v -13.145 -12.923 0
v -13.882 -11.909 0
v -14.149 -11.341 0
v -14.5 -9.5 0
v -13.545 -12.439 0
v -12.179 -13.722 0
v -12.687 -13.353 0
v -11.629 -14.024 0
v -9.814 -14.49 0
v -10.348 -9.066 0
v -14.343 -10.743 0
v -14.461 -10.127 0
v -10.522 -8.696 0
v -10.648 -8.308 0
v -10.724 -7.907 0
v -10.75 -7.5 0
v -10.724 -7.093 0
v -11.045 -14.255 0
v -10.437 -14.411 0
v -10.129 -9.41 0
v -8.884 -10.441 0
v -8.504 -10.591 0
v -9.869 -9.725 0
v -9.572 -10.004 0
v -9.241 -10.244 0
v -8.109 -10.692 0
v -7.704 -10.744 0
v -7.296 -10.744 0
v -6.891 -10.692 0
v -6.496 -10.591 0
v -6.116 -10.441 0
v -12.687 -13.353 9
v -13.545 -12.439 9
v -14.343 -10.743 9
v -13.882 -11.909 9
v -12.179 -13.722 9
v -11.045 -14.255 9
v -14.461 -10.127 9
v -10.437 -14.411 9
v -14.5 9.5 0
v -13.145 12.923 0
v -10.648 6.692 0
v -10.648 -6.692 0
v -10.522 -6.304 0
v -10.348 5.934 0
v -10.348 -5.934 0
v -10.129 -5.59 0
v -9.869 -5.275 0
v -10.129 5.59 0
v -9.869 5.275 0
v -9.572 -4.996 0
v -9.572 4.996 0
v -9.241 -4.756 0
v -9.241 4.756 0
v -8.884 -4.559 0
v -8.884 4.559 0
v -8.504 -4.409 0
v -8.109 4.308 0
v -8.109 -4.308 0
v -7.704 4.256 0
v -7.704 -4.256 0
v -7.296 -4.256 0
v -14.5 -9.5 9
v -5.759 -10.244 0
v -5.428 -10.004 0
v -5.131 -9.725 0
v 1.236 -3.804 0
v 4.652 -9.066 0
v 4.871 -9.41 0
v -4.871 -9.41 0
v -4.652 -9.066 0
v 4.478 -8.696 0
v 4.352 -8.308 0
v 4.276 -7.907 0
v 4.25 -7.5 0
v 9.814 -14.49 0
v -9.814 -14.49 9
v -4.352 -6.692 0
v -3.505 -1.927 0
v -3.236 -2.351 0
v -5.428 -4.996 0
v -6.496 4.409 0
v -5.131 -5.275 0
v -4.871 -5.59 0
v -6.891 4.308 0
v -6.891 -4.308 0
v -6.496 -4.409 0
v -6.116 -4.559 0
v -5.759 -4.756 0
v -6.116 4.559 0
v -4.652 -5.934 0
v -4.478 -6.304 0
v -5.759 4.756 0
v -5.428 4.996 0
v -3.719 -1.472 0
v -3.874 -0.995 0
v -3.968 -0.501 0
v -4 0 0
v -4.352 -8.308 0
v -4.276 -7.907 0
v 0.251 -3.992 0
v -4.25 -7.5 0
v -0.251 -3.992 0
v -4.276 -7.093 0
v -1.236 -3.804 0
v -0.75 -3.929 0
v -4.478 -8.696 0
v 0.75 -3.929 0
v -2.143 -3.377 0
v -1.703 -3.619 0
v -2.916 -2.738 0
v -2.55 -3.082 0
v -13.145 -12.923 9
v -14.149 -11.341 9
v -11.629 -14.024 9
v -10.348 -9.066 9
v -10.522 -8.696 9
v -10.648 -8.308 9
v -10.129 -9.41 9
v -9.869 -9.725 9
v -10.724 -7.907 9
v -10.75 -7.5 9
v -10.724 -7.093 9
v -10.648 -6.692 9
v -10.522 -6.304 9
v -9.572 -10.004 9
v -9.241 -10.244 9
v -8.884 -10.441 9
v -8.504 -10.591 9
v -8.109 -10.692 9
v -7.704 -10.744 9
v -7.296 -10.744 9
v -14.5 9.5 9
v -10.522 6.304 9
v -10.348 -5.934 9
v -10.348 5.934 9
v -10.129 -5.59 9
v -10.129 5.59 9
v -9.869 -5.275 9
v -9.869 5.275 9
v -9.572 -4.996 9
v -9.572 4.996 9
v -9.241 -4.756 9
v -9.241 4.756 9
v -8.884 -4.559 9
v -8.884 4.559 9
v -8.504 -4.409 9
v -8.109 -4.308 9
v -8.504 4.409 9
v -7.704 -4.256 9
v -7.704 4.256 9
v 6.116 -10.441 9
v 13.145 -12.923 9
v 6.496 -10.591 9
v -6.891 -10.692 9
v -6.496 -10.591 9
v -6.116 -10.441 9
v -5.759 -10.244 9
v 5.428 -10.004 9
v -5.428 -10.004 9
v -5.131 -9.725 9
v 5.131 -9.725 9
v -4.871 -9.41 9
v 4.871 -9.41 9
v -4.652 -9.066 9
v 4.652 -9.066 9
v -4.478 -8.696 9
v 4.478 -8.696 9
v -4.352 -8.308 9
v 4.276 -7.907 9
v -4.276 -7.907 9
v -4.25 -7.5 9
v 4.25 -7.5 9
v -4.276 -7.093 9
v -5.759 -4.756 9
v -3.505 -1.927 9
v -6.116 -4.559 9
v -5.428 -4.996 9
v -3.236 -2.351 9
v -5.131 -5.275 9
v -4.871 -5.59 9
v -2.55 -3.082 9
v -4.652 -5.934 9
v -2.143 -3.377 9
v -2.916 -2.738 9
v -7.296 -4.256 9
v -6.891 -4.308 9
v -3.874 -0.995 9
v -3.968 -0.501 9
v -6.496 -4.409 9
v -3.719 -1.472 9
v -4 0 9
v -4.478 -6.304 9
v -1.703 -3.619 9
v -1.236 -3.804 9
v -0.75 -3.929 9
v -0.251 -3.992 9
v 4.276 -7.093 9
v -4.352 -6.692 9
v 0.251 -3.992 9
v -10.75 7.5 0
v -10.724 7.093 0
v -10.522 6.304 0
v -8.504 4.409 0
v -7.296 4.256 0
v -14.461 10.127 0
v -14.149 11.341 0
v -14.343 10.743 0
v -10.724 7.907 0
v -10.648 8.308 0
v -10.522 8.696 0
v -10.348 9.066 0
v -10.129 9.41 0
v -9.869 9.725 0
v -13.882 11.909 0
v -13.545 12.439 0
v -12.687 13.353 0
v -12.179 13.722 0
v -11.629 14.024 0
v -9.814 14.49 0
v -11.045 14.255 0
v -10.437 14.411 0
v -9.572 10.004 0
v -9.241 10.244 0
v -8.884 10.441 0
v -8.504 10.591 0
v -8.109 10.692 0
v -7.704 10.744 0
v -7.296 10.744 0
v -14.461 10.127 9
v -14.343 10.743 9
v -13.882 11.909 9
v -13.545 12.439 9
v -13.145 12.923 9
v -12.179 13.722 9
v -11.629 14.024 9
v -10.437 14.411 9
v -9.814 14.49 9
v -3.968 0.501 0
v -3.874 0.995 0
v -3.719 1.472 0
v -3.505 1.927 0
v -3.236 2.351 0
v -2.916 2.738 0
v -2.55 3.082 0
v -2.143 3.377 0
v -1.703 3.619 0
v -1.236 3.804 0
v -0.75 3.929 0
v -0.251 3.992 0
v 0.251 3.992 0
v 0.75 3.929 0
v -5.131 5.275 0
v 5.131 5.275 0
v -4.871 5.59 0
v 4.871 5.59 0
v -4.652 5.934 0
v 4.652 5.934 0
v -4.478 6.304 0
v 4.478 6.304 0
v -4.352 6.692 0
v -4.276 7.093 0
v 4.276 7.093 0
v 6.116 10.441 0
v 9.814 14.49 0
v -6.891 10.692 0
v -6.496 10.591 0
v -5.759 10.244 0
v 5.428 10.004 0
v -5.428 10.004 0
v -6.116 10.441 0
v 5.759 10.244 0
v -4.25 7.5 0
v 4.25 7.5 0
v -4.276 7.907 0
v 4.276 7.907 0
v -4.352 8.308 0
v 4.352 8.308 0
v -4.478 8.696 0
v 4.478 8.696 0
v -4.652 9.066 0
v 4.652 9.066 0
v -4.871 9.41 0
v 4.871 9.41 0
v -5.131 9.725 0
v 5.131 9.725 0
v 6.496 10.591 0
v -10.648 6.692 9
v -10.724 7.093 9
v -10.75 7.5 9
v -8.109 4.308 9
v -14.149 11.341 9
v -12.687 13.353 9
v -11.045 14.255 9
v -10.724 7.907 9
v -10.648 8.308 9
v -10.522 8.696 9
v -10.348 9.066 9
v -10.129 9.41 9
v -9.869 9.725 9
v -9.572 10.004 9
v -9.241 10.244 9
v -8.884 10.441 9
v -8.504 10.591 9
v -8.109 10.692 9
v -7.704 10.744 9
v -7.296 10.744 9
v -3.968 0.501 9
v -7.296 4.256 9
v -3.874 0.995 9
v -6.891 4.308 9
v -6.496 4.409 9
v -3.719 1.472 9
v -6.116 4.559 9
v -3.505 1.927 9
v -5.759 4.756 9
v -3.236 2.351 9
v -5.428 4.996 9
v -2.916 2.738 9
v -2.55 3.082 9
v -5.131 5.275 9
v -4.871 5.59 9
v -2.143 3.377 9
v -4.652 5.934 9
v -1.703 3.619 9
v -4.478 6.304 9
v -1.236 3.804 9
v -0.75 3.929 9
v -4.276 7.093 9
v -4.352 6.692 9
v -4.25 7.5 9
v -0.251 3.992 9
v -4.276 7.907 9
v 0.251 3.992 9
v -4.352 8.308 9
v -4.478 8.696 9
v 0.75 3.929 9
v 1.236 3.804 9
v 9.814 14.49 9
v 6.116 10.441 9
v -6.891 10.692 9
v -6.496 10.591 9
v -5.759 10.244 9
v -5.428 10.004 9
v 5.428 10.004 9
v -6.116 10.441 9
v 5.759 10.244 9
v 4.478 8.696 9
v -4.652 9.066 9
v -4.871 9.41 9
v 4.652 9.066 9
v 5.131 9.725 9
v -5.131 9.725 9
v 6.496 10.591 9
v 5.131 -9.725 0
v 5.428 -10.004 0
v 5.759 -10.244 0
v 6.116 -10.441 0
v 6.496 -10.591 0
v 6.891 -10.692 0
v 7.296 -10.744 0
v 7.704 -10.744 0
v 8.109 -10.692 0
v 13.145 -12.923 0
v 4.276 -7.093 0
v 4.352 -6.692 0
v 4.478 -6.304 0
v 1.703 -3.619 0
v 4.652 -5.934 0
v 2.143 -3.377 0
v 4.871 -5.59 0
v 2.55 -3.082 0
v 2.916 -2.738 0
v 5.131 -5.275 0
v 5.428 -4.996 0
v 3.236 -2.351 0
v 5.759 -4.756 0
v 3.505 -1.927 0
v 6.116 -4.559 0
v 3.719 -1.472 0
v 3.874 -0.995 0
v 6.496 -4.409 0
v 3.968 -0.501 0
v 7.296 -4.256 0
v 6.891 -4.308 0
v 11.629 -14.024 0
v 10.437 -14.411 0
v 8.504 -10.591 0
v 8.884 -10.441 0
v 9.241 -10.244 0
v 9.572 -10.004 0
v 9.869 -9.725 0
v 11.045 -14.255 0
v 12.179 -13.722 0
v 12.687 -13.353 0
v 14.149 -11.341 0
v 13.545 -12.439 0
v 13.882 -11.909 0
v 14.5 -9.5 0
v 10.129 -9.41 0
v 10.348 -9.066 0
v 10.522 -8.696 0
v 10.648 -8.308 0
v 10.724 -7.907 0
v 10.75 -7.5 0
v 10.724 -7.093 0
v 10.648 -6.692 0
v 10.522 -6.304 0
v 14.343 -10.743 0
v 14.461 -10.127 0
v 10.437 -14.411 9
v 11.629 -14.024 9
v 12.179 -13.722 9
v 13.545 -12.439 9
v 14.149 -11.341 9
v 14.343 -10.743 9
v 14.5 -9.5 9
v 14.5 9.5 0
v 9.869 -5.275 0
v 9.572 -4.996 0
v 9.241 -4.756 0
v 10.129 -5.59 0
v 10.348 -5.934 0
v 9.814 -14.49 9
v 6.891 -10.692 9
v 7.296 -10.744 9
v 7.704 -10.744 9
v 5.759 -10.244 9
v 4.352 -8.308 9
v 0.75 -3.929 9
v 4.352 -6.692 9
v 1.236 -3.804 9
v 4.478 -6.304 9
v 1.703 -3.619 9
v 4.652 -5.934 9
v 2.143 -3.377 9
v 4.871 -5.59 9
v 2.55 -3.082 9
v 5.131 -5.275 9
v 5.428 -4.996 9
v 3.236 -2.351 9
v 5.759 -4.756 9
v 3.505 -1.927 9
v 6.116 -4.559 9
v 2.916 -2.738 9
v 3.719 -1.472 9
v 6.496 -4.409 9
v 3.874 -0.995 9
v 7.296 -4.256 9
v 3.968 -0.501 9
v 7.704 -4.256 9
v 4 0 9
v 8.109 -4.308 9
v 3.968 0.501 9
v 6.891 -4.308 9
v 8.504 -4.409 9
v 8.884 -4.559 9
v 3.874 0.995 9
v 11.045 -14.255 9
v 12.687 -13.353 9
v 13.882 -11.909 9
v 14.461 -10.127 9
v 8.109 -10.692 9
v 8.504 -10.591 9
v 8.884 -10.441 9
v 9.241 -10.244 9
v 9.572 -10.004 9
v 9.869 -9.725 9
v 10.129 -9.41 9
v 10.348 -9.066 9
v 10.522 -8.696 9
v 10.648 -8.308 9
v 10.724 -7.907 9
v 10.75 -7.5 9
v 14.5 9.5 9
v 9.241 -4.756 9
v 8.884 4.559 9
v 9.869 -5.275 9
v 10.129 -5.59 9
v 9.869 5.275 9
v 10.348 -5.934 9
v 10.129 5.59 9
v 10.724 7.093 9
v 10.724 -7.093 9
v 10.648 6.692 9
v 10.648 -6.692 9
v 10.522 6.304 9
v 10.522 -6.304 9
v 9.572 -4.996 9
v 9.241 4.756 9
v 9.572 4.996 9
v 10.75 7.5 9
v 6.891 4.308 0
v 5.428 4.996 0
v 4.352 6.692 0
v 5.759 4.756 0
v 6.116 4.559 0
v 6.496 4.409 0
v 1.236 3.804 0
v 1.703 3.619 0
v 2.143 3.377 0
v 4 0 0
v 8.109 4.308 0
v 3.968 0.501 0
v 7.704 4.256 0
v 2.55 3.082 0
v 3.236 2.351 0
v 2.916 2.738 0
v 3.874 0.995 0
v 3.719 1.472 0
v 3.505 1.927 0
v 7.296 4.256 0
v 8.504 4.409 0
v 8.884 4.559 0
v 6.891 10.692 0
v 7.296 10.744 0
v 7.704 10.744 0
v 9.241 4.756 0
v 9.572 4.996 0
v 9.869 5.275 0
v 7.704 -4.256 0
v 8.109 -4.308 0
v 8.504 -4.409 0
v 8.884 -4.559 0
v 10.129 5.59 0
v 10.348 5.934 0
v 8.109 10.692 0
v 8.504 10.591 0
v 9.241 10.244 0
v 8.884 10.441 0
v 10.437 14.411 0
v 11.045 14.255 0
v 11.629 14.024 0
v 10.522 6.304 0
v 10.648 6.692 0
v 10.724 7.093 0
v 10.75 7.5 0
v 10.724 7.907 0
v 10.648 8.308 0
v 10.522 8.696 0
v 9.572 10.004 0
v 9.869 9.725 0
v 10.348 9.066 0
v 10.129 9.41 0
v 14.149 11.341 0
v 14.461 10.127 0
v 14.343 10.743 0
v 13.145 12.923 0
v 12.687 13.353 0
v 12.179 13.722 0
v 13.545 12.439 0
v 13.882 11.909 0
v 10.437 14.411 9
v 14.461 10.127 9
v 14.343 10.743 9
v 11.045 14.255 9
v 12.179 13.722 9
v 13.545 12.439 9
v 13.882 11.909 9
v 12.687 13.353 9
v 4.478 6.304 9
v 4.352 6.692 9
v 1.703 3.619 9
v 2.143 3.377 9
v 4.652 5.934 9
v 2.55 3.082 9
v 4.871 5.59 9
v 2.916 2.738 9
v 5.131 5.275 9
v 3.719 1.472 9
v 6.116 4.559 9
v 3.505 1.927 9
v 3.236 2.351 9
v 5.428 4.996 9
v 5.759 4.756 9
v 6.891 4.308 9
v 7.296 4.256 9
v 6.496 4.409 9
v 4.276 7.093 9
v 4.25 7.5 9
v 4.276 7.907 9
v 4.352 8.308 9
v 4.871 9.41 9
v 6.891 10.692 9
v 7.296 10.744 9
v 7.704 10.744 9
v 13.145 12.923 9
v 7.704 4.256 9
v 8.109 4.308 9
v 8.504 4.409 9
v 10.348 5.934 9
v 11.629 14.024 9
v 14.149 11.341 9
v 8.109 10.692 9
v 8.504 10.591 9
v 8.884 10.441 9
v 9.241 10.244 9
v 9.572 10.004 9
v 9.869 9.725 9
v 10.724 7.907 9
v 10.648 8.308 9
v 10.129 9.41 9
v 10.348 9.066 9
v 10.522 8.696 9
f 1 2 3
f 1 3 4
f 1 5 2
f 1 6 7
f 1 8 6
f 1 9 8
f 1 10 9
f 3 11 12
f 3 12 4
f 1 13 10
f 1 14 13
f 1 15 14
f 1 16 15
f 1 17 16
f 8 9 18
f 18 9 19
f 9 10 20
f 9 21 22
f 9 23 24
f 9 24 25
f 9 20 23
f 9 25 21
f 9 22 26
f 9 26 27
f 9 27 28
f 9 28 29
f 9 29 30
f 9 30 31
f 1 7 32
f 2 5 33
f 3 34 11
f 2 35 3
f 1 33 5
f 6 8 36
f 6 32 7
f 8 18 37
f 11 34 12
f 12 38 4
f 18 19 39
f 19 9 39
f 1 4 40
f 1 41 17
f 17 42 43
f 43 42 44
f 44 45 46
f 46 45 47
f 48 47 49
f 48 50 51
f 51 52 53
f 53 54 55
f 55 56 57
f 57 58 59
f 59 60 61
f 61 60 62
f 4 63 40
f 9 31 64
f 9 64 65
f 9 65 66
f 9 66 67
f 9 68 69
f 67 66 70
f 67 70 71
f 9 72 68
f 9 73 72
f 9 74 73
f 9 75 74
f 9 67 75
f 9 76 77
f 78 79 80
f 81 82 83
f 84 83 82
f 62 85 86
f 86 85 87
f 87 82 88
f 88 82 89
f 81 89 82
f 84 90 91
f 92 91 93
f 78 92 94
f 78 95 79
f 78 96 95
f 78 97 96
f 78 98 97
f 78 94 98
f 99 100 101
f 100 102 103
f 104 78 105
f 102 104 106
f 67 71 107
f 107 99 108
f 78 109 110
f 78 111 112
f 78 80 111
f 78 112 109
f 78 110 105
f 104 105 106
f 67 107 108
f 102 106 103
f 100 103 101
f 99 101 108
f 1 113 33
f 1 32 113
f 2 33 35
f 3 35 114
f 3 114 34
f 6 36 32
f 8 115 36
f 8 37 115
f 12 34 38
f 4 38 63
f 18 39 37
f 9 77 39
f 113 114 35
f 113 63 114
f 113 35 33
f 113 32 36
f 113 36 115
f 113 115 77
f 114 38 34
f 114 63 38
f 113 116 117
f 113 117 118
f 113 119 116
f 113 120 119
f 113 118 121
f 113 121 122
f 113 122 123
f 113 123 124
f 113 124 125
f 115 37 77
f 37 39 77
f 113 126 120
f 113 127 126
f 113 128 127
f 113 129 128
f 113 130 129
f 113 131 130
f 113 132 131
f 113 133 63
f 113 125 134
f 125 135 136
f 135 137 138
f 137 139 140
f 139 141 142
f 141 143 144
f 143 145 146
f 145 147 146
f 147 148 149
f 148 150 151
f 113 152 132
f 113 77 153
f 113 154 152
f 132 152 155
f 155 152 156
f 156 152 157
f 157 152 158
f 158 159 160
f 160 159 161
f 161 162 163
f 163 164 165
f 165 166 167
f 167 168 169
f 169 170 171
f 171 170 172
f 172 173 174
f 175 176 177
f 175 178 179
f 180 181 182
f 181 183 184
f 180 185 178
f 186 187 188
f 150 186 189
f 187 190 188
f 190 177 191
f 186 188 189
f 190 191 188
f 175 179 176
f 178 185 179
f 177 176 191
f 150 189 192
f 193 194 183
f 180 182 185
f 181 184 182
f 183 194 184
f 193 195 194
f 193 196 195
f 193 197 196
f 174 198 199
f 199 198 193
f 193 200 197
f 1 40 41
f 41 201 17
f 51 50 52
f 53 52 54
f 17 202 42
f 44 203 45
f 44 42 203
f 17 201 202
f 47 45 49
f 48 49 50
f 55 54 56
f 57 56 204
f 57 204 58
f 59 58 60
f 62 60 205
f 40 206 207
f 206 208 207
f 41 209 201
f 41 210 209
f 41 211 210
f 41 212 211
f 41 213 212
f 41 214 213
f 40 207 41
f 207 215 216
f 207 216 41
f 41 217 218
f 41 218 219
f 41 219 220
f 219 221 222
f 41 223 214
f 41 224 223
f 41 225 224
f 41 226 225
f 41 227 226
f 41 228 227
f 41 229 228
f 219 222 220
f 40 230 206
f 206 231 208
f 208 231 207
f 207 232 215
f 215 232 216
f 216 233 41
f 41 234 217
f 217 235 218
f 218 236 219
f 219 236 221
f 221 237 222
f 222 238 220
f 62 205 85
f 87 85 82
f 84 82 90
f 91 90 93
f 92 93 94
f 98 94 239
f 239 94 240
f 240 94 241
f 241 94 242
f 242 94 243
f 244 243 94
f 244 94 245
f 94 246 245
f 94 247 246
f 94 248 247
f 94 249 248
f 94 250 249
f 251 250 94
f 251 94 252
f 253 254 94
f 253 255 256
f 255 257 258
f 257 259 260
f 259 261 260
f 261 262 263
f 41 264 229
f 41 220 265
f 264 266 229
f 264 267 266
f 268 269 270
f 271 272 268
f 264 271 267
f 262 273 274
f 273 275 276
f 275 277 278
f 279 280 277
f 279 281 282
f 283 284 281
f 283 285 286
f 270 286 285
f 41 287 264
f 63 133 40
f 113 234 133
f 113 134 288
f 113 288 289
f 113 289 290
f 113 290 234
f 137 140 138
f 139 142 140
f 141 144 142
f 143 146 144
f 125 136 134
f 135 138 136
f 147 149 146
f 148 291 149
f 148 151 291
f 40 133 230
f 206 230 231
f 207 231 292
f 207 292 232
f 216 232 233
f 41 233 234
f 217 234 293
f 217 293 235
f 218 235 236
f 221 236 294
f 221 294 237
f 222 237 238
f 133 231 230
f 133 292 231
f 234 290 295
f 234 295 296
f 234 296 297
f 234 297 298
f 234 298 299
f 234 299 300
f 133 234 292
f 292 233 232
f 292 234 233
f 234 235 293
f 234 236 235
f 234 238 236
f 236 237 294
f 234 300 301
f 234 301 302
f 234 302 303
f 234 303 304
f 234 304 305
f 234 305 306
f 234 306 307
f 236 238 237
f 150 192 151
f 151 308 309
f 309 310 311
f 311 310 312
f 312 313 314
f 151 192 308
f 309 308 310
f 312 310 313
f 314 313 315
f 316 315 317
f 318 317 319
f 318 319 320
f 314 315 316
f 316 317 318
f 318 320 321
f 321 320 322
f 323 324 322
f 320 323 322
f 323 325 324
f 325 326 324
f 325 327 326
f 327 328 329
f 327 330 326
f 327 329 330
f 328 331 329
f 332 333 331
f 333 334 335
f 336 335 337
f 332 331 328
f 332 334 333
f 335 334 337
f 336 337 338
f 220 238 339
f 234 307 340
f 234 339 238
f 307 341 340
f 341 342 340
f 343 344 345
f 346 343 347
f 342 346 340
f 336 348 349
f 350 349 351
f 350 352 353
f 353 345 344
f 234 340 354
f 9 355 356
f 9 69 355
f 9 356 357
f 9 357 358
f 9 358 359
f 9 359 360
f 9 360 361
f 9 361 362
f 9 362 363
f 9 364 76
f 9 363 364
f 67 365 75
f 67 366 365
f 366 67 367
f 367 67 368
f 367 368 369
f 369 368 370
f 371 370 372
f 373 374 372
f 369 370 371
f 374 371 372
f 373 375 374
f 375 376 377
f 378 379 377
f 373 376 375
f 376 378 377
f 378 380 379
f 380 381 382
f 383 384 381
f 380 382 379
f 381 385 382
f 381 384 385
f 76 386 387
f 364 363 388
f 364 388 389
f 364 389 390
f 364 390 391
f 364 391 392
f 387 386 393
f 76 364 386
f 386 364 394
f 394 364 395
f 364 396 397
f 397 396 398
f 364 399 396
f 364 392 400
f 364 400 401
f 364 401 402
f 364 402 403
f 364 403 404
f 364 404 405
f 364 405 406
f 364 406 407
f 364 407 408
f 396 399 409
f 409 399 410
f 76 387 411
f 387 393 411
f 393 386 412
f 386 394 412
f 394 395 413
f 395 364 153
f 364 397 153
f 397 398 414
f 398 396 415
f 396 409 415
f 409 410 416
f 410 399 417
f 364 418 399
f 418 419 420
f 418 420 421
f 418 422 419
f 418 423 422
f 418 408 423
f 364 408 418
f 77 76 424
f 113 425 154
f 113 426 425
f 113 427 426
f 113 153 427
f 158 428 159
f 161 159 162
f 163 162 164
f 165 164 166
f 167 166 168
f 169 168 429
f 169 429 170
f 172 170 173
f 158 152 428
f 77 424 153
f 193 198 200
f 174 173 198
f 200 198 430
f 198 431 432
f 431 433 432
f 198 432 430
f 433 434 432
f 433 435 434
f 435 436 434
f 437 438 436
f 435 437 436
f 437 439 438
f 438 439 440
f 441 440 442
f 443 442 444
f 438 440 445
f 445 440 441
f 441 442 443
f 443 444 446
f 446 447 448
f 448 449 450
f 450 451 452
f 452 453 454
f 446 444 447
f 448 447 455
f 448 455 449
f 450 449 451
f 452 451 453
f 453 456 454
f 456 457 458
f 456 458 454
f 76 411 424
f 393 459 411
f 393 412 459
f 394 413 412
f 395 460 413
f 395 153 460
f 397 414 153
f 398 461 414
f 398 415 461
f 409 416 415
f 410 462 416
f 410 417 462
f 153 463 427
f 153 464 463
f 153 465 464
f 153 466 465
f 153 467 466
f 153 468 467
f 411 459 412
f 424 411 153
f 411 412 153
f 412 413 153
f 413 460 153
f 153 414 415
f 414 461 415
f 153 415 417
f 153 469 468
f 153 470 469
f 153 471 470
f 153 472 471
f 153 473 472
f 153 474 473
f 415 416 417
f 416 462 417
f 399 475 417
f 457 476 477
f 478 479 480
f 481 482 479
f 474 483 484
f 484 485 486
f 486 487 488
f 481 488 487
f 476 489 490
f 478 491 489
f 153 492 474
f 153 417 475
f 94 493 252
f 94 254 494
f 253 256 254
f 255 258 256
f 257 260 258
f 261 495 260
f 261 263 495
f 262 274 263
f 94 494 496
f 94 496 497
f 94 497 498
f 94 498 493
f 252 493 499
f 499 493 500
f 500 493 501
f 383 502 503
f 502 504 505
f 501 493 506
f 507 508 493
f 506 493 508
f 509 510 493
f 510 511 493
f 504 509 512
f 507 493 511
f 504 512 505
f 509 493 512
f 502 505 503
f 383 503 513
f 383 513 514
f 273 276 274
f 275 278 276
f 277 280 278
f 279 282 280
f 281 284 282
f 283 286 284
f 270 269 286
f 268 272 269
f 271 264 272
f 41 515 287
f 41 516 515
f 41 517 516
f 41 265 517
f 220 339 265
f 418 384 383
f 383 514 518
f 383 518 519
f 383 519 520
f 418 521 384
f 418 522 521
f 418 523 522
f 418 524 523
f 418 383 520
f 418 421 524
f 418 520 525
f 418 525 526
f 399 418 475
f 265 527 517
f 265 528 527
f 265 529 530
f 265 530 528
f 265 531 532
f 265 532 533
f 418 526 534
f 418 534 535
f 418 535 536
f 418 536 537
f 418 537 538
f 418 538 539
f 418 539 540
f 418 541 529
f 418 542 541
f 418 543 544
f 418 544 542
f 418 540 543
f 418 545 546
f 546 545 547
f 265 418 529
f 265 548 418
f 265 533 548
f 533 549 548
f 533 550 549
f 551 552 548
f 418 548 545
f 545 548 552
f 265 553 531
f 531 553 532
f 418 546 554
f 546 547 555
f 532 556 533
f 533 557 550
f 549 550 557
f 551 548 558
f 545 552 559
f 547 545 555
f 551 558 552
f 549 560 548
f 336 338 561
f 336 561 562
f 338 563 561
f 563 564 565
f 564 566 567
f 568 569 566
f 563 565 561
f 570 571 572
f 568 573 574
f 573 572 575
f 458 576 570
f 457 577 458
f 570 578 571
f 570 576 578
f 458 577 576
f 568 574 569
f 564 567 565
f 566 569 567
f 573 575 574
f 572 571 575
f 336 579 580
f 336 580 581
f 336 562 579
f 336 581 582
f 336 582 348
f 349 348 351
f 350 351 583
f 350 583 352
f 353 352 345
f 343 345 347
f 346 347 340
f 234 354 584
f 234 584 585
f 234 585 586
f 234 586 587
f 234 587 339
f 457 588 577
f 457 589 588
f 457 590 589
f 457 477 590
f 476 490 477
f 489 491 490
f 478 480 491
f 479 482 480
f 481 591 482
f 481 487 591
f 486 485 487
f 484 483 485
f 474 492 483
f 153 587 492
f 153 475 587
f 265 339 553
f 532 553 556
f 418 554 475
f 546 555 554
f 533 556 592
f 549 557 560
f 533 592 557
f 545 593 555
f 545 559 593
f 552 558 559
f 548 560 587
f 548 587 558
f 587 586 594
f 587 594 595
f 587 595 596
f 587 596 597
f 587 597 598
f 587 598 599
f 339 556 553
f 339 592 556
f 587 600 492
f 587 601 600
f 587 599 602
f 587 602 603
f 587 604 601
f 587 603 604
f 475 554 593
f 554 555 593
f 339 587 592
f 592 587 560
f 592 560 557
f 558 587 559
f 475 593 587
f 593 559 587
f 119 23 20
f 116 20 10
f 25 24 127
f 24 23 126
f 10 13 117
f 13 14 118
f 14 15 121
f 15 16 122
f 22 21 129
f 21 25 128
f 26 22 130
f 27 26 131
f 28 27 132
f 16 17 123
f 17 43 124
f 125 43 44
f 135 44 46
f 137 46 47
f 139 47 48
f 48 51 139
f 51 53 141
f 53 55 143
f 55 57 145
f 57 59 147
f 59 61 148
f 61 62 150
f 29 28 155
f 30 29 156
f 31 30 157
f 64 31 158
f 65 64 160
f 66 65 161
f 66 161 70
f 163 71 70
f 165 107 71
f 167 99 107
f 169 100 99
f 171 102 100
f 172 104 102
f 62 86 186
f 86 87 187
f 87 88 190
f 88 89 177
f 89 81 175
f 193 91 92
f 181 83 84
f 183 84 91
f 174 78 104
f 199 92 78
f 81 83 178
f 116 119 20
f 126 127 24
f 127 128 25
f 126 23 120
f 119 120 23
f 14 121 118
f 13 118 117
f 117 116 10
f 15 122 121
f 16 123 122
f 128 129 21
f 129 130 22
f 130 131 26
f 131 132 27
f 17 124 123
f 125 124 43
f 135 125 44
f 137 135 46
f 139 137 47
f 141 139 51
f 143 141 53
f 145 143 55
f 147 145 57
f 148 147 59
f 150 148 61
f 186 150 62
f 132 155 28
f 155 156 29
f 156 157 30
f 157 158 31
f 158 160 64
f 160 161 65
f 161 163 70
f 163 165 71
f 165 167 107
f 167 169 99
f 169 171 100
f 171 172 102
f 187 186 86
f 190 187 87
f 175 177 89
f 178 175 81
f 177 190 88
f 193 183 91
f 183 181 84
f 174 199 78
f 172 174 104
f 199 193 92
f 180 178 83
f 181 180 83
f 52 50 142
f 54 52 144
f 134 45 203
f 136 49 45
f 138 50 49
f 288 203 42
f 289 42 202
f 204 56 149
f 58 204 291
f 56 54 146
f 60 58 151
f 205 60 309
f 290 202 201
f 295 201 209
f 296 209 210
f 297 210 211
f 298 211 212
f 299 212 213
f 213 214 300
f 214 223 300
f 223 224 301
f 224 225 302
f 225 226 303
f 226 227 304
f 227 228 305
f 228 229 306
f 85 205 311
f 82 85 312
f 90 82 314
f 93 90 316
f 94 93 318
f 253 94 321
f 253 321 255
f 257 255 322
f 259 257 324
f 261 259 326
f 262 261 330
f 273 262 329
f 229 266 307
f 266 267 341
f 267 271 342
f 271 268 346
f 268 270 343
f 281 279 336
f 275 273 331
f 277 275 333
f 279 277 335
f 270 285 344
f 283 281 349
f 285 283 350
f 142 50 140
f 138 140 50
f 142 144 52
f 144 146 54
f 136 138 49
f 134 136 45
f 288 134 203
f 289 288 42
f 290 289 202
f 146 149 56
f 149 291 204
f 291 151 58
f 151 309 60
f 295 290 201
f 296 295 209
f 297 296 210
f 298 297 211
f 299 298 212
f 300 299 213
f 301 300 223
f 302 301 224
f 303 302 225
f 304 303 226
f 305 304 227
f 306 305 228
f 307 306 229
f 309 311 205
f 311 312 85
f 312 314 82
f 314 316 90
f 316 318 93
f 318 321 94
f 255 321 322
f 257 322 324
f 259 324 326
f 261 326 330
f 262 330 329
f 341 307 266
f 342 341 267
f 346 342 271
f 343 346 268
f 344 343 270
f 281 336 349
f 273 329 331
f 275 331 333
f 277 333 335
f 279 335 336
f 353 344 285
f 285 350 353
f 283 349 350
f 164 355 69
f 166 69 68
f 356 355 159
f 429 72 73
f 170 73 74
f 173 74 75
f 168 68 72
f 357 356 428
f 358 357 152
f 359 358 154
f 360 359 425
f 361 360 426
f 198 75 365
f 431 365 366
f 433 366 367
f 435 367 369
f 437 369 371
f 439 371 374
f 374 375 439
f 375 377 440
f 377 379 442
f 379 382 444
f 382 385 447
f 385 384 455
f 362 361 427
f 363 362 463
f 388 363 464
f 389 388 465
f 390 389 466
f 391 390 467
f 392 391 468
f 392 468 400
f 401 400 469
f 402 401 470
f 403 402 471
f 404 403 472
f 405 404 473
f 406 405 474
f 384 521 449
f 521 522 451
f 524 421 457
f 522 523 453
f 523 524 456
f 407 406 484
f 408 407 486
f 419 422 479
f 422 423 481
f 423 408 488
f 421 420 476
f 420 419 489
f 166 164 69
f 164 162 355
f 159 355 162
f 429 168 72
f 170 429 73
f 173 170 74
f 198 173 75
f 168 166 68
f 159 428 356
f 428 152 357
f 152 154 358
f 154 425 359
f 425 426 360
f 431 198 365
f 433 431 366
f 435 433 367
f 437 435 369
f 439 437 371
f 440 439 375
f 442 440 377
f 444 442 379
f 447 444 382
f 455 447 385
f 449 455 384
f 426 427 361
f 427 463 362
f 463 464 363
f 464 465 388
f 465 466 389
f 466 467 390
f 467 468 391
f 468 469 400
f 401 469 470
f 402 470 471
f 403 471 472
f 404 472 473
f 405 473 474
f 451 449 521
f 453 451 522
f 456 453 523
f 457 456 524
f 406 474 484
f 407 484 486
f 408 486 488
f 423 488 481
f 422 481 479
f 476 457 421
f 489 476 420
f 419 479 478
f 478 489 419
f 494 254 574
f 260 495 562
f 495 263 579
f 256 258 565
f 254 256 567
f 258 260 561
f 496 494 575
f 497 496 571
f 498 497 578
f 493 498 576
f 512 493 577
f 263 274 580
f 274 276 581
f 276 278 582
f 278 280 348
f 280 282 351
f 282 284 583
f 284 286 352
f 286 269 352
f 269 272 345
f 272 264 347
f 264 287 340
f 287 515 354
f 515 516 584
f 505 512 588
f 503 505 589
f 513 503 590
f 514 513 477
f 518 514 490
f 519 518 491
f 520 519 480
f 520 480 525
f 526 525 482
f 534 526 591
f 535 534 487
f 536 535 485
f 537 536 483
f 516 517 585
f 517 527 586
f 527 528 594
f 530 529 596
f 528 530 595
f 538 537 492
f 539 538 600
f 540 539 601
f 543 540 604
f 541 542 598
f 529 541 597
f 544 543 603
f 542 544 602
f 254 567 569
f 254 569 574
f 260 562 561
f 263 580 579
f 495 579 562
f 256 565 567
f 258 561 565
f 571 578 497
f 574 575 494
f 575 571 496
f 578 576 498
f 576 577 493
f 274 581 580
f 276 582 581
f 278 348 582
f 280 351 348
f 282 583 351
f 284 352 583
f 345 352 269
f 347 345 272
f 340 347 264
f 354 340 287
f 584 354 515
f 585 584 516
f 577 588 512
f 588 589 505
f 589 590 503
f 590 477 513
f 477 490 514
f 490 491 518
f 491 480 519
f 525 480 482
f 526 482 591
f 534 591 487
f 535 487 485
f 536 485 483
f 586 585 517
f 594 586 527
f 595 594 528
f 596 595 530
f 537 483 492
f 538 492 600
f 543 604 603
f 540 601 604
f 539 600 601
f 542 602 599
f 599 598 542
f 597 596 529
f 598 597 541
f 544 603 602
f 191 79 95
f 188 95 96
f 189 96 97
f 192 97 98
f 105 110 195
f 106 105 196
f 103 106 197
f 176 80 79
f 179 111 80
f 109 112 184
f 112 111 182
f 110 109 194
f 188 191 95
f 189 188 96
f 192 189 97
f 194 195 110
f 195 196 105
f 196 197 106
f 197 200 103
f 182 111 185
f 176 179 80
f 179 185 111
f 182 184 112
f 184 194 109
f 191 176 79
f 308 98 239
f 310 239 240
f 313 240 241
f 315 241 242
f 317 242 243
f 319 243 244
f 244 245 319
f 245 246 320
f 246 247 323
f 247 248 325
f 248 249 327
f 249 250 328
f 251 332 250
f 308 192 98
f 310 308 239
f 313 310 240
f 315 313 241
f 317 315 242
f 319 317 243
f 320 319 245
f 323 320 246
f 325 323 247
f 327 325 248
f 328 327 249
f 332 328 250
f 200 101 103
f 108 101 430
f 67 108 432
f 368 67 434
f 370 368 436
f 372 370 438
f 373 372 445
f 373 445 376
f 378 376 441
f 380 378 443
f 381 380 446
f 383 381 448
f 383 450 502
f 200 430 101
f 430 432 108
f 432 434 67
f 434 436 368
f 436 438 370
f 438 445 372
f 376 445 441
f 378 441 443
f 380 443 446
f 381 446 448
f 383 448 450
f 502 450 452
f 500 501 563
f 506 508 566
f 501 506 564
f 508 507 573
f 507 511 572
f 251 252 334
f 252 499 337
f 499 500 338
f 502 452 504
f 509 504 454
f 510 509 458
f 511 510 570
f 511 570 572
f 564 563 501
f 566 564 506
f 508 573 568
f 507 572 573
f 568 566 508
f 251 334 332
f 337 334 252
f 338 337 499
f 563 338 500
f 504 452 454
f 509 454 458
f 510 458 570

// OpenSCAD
$fn = 50;

difference() {
	union() {
		hull() {
			translate(v = [-9.5, 9.5, 0]) {
				cylinder(h = 9, r = 5);
			}
			translate(v = [9.5, 9.5, 0]) {
				cylinder(h = 9, r = 5);
			}
			translate(v = [-9.5, -9.5, 0]) {
				cylinder(h = 9, r = 5);
			}
			translate(v = [9.5, -9.5, 0]) {
				cylinder(h = 9, r = 5);
			}
		}
	}
	union() {
		translate(v = [-7.5, -7.5, 0]) {
			cylinder(h = 9, r = 3.25);
		}
		translate(v = [-7.5, 7.5, 0]) {
			cylinder(h = 9, r = 3.25);
		}
		translate(v = [7.5, -7.5, 0]) {
			cylinder(h = 9, r = 3.25);
		}
		translate(v = [7.5, 7.5, 0]) {
			cylinder(h = 9, r = 3.25);
		}
		cylinder(h = 9, r = 4.0);
	}
}
